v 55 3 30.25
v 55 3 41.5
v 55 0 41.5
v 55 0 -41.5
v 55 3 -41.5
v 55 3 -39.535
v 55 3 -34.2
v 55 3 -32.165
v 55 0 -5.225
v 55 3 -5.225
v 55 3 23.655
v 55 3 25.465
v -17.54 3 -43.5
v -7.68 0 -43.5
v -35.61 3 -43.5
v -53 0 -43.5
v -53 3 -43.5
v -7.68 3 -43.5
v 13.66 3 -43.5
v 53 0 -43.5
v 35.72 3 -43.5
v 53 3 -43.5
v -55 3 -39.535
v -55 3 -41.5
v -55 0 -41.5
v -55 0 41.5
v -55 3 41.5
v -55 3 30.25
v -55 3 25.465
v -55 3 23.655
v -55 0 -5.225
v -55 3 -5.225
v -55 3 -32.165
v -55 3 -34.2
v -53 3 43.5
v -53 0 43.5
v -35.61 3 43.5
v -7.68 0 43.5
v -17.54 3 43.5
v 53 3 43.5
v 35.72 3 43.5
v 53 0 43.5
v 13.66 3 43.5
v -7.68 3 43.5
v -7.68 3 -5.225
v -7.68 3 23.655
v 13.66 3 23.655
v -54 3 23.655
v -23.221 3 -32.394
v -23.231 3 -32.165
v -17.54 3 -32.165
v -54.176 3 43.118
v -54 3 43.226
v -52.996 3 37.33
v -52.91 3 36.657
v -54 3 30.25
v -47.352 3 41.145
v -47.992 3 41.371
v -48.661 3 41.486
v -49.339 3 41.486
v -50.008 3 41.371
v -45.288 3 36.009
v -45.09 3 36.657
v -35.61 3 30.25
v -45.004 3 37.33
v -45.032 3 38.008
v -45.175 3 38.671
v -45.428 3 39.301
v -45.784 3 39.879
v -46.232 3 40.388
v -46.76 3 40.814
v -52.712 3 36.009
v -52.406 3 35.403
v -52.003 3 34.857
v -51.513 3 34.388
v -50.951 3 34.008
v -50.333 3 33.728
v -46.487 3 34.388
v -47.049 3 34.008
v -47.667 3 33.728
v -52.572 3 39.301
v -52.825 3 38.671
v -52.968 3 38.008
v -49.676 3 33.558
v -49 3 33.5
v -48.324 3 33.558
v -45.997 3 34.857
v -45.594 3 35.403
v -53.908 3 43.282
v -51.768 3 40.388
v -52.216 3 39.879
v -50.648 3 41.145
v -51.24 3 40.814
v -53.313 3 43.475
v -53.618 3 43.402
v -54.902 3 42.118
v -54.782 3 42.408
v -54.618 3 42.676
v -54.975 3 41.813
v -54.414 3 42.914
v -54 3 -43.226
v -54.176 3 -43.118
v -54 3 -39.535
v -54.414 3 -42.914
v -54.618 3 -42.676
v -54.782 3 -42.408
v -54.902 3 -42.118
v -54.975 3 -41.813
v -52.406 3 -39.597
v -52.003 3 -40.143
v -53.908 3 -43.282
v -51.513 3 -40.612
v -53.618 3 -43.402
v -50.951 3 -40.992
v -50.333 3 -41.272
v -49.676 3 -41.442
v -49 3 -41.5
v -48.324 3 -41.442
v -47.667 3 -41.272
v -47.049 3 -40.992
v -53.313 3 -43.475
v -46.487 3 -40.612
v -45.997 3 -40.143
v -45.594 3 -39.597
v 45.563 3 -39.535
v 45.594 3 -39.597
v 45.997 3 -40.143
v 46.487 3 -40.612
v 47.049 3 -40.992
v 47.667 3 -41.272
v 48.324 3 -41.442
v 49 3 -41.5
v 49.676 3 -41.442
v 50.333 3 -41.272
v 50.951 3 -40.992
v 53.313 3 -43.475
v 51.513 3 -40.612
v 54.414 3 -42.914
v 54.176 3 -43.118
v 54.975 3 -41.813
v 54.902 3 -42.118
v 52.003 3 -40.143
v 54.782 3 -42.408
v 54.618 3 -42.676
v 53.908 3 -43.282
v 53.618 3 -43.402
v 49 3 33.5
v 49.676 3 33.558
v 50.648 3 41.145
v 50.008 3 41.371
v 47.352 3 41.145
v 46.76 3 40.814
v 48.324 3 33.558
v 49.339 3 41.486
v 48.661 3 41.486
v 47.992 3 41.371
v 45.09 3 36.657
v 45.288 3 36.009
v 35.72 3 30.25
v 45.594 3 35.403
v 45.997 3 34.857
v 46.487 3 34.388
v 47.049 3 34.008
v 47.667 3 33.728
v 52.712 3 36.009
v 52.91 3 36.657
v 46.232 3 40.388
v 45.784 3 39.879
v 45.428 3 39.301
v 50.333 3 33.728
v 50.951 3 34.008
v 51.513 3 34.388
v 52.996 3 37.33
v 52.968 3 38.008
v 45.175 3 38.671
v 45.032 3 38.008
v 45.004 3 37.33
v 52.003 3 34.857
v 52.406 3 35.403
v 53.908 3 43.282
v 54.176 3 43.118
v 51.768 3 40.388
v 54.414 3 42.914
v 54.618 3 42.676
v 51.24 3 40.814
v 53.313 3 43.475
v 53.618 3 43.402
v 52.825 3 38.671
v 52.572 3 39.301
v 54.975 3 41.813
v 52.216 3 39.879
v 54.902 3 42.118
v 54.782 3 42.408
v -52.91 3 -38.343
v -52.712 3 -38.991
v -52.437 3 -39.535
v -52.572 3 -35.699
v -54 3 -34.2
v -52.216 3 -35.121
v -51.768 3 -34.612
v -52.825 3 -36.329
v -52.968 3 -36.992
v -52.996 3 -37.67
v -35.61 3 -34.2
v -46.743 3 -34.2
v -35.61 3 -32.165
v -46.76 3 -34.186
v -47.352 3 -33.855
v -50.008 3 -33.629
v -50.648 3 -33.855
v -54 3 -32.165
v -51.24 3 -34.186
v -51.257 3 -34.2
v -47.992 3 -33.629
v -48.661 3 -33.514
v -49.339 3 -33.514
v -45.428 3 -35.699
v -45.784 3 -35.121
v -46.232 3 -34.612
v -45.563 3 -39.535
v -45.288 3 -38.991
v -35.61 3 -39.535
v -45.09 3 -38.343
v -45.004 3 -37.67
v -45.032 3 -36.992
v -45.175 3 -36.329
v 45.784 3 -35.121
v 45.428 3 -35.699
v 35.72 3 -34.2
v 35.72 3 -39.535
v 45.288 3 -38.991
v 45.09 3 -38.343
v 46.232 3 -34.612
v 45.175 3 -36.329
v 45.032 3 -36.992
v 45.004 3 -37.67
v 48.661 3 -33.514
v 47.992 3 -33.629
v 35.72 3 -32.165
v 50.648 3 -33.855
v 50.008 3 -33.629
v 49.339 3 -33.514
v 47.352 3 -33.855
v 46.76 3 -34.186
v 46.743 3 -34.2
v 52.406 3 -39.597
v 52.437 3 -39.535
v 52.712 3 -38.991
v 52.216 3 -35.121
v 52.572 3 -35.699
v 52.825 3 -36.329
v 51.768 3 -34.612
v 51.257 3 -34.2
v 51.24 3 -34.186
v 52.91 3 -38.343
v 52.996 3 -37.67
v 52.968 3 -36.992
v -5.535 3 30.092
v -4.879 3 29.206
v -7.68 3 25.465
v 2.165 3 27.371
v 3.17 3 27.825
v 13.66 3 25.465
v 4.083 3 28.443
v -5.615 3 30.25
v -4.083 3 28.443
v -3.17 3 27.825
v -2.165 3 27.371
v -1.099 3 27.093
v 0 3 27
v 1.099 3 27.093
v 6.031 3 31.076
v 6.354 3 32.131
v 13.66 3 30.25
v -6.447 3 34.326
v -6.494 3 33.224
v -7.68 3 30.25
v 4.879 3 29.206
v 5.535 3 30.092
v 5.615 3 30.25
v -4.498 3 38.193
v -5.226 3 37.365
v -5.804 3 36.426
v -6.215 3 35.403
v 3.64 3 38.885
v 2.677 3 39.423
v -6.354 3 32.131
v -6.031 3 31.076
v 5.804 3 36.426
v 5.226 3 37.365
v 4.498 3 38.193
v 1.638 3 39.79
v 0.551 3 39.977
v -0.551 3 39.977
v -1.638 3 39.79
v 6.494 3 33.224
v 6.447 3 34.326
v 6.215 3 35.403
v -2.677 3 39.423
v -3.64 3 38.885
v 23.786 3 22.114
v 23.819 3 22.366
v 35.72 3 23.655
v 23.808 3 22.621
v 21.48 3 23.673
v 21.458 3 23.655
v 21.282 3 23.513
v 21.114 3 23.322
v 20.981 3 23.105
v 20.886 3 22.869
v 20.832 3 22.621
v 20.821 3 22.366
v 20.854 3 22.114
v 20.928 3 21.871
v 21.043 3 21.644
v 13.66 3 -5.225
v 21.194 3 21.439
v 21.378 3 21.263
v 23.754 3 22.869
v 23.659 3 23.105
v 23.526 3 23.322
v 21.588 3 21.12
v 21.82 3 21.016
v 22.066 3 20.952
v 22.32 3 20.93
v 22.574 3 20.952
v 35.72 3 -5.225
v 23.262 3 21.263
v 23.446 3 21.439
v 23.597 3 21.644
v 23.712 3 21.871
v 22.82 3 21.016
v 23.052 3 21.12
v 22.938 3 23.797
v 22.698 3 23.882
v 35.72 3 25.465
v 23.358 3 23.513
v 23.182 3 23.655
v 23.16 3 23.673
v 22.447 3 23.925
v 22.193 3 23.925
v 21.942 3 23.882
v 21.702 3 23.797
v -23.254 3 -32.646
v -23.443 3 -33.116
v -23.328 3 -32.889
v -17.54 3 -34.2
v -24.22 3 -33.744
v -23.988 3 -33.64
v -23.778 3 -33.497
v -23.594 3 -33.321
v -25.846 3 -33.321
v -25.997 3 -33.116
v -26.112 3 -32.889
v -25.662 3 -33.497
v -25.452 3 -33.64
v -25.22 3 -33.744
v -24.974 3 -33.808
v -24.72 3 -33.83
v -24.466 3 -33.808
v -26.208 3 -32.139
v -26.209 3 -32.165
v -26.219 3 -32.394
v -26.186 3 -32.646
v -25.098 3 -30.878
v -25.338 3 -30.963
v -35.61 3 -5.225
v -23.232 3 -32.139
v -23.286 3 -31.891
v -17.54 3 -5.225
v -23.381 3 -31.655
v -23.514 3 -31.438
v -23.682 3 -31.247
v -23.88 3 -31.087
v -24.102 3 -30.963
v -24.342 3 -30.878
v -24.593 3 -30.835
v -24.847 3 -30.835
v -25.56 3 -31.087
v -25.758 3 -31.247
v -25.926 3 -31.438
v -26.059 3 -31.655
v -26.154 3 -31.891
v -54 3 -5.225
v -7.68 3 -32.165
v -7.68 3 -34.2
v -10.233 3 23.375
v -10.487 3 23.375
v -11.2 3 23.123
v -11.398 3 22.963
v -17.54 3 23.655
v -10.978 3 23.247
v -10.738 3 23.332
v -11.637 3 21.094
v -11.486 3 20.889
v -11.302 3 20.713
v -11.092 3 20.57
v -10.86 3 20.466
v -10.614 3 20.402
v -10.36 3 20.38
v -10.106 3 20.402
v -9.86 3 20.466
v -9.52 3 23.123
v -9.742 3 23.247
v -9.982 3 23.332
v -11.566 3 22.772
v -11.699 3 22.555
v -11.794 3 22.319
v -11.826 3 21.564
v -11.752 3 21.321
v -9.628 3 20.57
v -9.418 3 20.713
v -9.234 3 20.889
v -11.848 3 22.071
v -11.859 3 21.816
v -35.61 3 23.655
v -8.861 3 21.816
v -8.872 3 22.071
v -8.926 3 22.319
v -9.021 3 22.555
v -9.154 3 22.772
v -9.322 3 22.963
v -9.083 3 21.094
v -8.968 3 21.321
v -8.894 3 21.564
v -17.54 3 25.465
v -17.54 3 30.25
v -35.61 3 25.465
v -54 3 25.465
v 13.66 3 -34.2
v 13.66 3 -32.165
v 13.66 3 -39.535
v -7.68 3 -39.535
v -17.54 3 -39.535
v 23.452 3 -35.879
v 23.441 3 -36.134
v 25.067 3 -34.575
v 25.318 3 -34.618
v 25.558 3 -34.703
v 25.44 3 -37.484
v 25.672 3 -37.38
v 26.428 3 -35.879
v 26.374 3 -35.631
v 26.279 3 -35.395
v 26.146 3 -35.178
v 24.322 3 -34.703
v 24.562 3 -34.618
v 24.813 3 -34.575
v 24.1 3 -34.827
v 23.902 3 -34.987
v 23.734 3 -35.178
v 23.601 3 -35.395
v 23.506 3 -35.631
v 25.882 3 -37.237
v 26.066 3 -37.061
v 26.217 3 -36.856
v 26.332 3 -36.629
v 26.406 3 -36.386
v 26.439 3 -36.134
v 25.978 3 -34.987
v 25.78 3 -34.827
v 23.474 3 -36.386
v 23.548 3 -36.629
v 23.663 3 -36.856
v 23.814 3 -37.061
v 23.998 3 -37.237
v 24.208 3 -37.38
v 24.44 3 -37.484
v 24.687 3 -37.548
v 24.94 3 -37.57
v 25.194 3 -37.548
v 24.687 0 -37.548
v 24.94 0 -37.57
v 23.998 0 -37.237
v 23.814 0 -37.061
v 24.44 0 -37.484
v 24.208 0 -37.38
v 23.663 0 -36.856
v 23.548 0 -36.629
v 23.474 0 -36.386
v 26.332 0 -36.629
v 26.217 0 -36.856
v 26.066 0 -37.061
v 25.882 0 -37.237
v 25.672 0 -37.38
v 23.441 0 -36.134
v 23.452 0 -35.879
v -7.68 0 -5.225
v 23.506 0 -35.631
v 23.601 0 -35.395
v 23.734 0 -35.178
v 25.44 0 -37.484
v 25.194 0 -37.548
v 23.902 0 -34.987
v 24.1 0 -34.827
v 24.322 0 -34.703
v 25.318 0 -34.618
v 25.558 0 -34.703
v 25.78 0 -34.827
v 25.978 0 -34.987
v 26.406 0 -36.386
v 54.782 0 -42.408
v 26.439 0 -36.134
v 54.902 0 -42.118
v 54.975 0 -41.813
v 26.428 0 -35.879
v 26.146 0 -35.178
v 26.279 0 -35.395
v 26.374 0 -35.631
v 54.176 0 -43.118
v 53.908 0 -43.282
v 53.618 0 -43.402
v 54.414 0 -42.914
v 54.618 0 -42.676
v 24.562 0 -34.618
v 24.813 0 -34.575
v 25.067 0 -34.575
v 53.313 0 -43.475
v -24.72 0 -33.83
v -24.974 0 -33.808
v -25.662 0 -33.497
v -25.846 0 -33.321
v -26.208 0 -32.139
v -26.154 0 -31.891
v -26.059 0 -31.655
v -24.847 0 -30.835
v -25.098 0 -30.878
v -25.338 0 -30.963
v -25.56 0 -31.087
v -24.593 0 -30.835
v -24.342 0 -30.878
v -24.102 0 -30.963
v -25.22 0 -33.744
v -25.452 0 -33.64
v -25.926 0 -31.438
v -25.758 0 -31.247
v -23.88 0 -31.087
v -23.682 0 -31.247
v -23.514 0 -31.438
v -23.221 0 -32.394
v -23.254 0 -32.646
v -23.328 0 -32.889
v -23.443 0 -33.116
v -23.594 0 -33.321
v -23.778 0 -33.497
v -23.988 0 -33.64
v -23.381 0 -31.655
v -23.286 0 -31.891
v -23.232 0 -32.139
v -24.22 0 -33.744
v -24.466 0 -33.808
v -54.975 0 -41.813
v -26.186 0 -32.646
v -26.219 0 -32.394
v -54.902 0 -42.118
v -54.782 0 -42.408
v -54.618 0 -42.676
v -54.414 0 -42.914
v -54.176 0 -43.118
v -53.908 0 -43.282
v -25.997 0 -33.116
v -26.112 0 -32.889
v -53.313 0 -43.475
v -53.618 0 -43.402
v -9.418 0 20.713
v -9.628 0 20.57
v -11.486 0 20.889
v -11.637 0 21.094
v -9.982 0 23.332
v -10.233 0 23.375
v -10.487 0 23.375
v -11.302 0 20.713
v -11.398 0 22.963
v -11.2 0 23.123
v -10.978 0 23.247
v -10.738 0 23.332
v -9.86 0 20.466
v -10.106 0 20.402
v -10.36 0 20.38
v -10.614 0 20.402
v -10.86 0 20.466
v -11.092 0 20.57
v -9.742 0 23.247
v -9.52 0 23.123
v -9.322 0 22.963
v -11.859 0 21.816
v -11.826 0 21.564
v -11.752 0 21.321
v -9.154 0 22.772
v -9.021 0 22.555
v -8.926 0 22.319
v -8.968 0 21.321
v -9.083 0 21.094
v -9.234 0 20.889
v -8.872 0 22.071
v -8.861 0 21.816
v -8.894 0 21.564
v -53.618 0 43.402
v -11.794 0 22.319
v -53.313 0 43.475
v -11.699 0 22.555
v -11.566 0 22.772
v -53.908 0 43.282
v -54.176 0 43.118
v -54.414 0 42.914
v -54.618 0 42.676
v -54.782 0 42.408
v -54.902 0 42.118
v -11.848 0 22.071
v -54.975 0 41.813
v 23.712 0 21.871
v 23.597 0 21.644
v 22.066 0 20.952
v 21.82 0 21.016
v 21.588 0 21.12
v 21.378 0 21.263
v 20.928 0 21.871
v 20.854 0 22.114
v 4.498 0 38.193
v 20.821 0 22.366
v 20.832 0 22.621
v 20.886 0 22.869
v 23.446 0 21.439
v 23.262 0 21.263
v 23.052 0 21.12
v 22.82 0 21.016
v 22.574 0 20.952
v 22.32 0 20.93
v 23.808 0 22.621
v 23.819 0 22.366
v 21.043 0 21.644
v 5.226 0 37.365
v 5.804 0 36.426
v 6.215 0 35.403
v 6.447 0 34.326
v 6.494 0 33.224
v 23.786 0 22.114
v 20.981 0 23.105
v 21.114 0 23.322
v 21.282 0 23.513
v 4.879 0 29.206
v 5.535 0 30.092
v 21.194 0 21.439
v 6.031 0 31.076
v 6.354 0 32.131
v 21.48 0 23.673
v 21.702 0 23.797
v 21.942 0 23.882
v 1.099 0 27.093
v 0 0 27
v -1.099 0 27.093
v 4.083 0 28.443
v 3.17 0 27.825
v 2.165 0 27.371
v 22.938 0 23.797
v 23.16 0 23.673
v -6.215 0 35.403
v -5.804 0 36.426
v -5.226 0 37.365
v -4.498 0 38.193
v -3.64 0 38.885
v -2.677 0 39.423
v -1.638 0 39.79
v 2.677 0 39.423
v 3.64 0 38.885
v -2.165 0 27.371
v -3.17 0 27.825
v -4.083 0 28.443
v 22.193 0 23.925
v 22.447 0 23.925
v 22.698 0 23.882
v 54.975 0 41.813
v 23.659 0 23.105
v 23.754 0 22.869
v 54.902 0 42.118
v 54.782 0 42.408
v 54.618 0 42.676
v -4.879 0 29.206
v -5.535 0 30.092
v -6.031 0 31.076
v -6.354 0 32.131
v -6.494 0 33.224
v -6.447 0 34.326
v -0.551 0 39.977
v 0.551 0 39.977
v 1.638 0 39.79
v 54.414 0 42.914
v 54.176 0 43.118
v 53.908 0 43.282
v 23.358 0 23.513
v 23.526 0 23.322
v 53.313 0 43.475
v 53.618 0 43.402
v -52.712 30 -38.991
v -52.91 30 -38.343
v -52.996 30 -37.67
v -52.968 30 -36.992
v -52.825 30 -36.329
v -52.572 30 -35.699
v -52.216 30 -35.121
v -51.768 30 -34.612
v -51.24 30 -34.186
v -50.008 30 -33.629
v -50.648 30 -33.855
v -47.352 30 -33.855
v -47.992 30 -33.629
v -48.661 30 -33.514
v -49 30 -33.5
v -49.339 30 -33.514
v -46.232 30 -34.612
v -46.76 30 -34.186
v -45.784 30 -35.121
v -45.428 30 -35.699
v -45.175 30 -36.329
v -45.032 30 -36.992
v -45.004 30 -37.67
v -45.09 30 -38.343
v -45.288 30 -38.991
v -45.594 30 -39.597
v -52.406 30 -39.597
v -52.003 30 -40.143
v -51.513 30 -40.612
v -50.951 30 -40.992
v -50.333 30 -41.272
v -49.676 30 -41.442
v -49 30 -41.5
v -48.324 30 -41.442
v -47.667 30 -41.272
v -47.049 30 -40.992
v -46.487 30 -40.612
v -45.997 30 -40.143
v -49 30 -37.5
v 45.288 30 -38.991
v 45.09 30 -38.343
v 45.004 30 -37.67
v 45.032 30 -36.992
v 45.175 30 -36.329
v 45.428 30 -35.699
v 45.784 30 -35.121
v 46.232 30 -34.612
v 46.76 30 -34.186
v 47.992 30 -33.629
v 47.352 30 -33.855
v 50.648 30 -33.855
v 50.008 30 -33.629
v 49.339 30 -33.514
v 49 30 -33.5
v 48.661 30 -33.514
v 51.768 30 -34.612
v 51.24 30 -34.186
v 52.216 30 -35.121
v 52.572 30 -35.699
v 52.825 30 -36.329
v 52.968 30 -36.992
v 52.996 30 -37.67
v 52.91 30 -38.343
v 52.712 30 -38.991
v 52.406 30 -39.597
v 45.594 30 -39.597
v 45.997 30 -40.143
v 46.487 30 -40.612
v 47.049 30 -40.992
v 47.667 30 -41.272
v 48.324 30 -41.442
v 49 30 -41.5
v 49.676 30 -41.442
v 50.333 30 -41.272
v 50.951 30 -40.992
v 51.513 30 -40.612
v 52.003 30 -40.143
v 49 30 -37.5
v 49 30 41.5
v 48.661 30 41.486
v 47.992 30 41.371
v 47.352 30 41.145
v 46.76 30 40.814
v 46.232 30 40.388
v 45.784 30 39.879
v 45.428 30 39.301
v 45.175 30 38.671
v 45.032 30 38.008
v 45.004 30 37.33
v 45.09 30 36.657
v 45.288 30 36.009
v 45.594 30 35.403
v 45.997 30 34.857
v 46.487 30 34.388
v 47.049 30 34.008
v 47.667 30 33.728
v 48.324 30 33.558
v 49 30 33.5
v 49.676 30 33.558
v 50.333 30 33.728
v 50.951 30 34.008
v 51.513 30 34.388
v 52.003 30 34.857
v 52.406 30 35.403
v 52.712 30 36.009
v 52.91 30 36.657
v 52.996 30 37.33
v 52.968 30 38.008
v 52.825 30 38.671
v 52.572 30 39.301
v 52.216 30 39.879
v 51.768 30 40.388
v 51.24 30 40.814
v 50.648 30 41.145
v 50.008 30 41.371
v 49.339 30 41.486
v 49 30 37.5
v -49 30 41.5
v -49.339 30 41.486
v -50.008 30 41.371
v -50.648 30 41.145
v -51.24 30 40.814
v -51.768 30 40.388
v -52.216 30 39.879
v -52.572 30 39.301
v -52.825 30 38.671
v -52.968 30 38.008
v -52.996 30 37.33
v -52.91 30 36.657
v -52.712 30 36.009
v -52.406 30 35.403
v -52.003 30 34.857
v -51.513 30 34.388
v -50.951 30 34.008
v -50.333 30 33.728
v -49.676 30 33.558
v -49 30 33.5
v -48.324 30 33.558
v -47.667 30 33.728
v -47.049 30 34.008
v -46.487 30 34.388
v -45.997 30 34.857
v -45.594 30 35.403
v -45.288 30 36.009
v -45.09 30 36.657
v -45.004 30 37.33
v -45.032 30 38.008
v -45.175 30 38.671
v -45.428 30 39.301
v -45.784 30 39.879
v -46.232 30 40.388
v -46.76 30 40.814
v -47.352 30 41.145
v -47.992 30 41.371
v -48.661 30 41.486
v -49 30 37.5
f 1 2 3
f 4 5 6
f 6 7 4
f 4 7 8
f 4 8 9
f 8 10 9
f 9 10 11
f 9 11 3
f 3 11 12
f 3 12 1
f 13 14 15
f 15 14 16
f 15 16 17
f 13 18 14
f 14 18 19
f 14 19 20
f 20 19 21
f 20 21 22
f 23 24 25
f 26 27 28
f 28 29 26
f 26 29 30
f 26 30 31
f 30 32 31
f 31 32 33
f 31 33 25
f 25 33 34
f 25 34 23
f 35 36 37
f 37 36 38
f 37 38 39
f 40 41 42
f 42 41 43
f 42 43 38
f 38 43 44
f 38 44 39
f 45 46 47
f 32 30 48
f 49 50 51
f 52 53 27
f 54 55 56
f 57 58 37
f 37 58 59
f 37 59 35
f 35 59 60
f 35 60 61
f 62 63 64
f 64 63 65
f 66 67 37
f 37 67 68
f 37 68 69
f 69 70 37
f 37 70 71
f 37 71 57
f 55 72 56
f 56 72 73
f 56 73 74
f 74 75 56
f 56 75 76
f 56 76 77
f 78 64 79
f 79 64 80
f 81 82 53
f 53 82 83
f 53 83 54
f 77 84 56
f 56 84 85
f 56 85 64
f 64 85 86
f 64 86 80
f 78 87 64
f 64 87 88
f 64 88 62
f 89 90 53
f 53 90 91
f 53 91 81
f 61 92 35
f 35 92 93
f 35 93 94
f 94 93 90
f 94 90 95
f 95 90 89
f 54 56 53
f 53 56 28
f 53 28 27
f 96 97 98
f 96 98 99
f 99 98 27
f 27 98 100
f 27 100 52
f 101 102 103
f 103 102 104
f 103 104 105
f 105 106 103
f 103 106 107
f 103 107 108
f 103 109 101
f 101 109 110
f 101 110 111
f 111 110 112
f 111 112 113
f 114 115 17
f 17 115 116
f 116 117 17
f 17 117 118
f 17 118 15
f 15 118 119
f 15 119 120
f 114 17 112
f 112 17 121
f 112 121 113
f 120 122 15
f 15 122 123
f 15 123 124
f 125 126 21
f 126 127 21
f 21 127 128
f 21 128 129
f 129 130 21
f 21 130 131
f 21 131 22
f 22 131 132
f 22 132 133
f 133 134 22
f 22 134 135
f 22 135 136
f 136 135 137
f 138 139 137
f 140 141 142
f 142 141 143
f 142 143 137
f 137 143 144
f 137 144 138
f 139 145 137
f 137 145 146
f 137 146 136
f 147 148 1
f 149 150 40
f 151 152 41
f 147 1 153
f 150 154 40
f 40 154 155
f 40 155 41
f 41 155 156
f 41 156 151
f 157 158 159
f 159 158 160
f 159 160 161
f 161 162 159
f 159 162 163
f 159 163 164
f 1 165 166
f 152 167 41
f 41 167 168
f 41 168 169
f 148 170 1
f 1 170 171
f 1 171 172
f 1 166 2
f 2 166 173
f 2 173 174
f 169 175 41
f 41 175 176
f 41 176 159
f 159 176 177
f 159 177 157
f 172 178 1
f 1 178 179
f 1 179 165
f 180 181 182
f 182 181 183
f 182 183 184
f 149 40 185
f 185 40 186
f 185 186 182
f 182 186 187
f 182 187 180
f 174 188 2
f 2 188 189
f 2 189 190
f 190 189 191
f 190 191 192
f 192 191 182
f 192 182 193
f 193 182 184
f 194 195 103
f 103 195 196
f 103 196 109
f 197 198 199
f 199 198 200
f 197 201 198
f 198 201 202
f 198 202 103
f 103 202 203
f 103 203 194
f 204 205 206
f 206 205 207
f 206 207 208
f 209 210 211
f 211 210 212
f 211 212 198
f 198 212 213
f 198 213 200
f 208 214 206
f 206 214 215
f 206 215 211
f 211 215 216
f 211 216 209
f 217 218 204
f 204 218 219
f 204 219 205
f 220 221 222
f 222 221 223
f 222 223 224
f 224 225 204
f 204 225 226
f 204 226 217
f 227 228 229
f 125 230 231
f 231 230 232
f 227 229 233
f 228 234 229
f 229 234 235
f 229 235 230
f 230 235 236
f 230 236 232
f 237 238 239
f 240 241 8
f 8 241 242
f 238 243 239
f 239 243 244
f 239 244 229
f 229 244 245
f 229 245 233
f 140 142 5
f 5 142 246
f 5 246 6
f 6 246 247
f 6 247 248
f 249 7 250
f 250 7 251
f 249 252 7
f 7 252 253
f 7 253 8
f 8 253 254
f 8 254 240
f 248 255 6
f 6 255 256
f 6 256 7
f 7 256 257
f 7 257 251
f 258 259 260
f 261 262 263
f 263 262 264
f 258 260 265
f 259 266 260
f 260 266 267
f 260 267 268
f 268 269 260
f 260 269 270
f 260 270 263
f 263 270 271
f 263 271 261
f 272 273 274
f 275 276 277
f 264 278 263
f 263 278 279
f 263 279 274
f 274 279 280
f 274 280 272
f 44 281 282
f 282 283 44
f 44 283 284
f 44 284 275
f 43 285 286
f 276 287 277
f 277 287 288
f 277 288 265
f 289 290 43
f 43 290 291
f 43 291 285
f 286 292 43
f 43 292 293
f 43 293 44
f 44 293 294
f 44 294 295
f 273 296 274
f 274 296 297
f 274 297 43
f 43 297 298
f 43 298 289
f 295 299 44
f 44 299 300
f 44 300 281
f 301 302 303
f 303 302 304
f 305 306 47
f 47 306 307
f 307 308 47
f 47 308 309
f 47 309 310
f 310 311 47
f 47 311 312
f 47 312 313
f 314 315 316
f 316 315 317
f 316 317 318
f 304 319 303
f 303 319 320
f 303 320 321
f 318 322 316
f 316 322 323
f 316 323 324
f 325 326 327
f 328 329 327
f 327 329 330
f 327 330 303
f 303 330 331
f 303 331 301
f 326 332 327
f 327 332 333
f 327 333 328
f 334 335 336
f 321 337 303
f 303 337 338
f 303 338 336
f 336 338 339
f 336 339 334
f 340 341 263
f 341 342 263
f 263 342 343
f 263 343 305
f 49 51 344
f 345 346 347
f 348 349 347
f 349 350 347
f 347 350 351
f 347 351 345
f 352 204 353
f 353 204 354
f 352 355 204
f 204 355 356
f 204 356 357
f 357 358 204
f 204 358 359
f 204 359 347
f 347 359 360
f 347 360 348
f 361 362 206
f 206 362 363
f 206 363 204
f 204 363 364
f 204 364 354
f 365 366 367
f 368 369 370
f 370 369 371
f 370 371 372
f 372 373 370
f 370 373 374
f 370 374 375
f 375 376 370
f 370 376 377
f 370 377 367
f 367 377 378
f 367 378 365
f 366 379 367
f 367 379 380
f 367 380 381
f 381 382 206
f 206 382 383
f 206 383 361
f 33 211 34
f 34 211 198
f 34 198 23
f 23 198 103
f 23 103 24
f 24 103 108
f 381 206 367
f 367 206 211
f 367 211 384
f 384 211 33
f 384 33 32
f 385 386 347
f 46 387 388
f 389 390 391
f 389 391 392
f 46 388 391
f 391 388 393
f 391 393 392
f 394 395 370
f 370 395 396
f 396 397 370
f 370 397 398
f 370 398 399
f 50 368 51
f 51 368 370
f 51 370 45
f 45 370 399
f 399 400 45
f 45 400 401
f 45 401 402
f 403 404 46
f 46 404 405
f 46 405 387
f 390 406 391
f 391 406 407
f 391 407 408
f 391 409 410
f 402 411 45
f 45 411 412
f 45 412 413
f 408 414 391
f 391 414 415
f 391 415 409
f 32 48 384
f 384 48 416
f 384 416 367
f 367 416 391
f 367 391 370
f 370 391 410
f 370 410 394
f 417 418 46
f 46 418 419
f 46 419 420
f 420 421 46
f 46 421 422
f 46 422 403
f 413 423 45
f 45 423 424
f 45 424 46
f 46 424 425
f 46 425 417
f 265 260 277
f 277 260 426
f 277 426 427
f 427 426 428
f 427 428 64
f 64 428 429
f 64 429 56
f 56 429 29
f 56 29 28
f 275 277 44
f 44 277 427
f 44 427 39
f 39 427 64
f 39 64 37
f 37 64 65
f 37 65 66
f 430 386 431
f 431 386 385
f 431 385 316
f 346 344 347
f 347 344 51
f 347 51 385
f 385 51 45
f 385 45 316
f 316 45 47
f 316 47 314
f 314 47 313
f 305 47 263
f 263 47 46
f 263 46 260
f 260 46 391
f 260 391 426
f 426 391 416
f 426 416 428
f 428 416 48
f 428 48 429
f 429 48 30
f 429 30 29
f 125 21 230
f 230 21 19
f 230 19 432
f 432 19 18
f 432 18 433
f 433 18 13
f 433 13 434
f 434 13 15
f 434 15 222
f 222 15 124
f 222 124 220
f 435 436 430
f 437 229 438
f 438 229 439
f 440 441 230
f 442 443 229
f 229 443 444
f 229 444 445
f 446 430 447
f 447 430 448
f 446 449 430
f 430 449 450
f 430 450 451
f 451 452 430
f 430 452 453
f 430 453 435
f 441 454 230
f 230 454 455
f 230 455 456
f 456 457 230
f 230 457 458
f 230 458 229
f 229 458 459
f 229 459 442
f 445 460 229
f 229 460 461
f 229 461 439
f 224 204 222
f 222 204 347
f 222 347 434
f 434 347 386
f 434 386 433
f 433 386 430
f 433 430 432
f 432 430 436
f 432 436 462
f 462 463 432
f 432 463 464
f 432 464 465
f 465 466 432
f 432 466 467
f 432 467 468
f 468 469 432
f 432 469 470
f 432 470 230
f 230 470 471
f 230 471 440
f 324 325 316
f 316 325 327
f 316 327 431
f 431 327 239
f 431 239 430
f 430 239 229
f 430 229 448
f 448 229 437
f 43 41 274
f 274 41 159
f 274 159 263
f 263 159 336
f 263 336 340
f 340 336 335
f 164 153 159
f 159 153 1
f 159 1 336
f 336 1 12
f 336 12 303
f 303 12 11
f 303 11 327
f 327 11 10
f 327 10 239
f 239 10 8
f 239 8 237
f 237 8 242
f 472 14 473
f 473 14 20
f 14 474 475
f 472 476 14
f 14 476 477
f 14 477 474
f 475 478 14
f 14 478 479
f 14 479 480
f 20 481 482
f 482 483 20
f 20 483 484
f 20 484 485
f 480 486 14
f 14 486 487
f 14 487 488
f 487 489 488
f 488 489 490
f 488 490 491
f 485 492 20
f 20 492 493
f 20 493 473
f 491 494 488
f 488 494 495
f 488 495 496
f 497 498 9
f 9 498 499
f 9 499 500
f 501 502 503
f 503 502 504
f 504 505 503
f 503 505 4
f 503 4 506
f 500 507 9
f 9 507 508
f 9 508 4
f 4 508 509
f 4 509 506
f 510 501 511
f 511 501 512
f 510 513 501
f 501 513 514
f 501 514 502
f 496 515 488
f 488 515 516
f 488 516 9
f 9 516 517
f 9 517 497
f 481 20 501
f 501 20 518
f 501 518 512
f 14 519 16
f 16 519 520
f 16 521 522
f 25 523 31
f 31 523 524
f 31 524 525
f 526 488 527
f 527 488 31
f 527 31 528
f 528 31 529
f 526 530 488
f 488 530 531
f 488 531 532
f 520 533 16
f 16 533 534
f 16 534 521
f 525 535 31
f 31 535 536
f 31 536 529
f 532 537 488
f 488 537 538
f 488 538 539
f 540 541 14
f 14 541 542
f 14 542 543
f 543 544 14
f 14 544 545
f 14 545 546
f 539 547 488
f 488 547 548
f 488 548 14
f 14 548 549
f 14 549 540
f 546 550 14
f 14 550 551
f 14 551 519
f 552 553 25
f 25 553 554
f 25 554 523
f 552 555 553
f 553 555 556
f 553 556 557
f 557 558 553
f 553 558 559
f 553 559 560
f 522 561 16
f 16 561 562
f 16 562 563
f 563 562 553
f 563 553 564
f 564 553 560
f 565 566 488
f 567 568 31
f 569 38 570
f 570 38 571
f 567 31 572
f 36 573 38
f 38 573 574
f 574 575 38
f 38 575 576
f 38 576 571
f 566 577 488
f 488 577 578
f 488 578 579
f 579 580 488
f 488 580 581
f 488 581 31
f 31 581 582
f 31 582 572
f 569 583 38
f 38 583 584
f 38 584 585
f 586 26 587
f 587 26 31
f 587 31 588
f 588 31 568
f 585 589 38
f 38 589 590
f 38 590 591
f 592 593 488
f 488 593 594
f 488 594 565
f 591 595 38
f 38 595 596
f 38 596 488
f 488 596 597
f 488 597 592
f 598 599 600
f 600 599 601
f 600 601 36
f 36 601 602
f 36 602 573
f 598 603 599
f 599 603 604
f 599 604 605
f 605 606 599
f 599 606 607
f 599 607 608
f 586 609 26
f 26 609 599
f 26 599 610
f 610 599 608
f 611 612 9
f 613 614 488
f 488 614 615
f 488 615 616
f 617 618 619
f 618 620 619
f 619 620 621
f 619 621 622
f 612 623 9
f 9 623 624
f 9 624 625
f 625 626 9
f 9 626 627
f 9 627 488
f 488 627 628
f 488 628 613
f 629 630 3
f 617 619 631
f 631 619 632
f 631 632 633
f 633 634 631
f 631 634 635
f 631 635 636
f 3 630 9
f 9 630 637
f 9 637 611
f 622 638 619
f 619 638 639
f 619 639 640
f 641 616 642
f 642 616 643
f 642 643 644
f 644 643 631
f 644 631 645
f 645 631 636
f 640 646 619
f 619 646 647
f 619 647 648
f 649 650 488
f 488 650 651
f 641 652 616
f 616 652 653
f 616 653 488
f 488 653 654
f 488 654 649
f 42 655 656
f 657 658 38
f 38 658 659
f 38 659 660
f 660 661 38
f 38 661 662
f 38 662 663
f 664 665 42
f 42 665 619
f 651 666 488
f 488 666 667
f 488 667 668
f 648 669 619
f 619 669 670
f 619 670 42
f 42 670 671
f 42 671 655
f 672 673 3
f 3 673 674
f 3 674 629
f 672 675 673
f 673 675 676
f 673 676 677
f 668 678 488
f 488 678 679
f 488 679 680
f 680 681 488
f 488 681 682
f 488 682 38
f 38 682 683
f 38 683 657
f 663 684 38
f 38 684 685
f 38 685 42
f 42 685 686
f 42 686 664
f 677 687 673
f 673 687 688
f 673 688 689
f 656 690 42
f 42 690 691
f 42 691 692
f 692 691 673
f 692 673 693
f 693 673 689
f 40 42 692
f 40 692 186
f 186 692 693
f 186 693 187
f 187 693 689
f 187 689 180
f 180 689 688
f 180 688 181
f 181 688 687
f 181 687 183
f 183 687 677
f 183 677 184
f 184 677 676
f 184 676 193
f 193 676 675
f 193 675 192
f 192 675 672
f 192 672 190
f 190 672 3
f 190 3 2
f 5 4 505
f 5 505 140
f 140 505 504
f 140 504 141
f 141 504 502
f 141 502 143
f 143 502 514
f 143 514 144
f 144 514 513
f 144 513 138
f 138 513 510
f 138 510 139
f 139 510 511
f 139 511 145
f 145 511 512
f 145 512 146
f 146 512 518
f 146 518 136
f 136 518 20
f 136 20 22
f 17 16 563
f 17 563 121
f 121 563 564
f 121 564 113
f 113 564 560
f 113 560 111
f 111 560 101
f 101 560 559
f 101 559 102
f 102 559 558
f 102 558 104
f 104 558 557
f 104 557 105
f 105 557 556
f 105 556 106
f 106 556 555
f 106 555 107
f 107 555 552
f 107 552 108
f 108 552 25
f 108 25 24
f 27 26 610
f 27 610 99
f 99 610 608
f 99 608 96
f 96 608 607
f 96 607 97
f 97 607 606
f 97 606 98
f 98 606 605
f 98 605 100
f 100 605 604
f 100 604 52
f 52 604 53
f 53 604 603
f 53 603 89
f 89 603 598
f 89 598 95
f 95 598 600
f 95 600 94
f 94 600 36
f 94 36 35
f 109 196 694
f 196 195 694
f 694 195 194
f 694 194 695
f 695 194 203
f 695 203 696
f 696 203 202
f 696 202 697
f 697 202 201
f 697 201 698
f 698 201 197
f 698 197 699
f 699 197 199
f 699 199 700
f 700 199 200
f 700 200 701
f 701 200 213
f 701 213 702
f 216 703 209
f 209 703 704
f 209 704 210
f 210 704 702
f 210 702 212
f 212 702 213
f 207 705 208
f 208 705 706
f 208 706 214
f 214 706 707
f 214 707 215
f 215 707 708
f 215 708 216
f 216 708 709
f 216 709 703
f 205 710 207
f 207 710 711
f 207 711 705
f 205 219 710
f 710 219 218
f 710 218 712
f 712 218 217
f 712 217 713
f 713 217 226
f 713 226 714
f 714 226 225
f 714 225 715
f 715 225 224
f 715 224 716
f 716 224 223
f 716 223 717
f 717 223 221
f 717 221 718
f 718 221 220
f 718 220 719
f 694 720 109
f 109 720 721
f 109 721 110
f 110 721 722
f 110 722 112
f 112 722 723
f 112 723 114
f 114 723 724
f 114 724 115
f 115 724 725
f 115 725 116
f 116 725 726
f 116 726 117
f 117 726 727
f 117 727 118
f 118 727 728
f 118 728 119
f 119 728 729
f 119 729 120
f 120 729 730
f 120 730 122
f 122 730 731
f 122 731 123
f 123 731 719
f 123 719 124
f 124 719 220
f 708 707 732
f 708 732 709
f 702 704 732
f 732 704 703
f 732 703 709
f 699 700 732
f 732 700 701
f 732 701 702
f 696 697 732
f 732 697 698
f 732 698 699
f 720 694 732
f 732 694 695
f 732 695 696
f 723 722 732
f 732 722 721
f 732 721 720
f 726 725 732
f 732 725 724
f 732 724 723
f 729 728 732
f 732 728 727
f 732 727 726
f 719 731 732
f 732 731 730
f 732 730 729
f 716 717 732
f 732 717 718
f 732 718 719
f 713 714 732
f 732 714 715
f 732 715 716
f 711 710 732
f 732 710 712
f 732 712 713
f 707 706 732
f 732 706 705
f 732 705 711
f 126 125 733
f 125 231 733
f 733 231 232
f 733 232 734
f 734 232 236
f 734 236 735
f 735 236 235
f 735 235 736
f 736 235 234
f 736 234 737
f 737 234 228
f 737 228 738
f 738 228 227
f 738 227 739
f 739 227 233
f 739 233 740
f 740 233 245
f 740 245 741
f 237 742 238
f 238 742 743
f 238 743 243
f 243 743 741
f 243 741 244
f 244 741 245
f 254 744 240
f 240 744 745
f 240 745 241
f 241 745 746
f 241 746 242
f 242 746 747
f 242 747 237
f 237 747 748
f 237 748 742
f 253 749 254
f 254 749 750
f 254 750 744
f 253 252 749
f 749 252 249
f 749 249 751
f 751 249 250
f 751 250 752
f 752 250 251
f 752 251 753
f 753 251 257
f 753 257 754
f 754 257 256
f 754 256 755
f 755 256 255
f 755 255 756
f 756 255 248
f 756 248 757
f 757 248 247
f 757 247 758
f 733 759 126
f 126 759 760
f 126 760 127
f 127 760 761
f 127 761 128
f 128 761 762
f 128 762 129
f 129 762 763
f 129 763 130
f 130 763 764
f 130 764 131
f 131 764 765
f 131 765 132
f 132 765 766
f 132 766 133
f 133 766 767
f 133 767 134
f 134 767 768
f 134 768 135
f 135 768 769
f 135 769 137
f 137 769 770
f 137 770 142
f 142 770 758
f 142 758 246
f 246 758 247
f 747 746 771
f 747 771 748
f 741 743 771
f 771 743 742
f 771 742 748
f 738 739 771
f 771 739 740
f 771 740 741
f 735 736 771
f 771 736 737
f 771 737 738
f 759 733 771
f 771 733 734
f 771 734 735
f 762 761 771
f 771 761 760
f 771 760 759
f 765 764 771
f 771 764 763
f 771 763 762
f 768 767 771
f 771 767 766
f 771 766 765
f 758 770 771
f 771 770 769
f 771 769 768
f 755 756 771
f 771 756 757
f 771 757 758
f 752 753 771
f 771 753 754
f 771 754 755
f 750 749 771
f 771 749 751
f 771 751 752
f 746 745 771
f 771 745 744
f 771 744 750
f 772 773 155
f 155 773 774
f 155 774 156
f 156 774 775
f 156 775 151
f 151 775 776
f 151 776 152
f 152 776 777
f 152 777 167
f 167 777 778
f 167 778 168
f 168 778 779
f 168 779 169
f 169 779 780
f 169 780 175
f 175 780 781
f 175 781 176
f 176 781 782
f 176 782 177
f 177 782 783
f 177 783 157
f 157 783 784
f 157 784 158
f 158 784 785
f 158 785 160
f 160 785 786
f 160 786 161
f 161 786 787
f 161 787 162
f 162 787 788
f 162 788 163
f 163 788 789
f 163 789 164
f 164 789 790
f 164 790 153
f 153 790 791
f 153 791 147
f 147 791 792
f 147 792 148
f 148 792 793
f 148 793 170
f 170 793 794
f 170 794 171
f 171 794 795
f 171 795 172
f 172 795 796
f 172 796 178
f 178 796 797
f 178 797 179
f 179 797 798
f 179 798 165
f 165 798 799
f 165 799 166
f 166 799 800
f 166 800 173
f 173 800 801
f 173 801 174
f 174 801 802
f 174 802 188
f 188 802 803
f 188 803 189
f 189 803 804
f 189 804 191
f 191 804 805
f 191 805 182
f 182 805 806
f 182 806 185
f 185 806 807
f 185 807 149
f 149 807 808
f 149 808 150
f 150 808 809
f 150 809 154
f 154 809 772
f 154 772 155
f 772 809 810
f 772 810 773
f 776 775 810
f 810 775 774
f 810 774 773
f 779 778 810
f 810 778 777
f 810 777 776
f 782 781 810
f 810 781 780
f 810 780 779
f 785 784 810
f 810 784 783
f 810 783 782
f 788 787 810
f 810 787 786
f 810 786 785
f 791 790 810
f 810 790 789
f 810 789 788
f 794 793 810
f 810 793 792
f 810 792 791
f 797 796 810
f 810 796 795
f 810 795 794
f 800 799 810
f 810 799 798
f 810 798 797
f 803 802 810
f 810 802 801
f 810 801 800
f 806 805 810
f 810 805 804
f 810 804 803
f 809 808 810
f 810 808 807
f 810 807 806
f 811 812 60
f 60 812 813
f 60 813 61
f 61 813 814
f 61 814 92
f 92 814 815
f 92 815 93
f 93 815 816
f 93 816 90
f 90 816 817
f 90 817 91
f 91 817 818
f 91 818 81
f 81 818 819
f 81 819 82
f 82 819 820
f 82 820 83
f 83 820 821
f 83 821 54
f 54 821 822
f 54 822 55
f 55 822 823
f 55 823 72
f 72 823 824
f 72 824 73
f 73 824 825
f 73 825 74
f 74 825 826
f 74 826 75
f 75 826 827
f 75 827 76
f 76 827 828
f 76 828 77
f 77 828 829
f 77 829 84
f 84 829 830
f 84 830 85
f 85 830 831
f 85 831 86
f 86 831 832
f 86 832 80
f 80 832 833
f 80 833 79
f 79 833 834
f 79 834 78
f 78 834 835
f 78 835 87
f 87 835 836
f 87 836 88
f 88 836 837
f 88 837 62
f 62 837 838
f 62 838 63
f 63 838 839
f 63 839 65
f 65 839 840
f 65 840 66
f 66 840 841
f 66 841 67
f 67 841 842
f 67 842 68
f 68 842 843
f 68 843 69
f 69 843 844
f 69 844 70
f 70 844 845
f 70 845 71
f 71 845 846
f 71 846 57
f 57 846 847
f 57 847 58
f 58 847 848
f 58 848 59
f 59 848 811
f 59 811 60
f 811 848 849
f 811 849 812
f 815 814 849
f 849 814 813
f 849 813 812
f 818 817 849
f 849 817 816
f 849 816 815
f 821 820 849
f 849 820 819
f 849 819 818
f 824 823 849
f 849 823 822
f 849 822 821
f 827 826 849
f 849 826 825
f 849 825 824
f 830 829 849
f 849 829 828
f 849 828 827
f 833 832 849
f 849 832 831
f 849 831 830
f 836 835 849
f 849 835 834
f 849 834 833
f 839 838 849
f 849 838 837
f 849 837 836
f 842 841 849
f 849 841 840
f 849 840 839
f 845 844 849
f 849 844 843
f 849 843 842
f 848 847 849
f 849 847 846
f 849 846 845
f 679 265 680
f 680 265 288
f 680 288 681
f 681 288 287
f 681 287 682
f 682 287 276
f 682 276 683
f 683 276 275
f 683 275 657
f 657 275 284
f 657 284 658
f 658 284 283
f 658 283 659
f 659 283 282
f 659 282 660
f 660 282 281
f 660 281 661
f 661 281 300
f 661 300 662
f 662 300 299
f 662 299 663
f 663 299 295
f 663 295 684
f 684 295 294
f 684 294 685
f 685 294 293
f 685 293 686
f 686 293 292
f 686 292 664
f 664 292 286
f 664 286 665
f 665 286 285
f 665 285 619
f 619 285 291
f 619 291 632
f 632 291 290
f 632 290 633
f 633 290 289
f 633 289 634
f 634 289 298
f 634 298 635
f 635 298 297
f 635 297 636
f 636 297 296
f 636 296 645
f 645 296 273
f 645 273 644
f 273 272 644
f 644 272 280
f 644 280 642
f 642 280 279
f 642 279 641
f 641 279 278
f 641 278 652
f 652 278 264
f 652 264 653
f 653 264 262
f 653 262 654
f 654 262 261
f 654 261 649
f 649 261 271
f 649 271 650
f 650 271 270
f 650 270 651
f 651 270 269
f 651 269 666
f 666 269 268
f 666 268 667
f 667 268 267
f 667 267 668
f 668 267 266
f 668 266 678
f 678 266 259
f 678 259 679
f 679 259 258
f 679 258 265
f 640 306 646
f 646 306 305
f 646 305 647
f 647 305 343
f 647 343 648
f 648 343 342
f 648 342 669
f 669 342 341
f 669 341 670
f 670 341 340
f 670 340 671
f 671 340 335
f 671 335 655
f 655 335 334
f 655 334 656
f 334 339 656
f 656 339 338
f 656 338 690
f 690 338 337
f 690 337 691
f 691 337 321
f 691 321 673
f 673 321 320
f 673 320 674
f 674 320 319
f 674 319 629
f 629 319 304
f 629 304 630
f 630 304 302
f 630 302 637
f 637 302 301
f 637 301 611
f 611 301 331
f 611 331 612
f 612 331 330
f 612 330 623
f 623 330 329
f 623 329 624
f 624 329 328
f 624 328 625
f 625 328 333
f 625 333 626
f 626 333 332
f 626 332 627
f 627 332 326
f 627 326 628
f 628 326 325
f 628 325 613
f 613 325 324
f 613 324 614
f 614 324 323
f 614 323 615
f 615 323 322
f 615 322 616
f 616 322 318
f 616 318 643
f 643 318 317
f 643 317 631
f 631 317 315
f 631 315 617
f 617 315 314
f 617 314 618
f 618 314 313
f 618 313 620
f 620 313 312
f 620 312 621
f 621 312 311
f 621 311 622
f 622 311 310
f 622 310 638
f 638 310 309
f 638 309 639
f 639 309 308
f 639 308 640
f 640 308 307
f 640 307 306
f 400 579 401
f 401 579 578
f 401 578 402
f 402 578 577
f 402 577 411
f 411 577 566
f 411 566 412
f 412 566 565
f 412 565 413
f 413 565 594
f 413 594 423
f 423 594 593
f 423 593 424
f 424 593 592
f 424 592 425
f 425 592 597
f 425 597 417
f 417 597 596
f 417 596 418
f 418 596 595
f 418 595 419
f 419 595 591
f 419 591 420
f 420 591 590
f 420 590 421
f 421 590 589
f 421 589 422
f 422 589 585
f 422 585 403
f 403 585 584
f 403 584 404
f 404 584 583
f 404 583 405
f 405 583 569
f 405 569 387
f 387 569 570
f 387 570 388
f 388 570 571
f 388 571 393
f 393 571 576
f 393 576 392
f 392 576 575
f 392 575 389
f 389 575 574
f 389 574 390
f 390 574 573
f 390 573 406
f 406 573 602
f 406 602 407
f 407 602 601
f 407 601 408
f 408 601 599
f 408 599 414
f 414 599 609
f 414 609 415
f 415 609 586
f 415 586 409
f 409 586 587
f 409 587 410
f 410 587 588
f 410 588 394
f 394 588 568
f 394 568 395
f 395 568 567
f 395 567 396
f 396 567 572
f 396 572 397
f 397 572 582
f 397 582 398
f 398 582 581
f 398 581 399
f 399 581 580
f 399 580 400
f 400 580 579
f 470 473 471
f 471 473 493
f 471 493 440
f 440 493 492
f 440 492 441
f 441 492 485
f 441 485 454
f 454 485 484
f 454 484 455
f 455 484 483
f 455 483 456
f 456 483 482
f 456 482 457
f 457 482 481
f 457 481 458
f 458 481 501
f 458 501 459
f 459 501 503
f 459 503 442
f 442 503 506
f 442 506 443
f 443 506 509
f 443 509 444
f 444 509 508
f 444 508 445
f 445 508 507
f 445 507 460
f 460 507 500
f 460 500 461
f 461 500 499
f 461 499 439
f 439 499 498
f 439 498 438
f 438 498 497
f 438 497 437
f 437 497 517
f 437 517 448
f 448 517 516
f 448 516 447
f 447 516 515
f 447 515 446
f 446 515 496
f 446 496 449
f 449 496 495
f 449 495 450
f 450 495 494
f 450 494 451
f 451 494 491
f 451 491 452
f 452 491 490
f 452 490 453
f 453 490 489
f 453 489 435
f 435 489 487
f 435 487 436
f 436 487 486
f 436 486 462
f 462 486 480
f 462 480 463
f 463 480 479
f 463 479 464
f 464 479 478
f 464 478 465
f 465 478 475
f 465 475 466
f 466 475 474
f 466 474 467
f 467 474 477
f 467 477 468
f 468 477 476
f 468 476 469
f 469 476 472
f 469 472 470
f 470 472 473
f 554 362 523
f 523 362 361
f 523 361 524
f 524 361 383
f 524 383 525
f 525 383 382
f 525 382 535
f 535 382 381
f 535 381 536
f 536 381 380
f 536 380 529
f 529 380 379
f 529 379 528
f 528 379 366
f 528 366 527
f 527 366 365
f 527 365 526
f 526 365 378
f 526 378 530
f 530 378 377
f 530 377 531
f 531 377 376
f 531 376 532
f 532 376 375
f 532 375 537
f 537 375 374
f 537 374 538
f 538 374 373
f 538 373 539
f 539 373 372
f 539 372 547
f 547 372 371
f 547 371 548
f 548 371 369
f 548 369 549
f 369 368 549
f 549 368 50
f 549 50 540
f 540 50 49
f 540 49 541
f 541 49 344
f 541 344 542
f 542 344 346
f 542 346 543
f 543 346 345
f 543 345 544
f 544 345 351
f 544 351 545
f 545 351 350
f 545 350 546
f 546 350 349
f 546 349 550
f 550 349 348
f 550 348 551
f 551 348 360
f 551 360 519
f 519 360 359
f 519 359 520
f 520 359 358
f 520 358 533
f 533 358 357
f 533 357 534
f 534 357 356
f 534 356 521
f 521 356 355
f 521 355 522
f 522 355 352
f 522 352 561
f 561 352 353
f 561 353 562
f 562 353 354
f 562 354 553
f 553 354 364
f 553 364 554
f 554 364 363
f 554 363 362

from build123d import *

# Parameters (mm, degrees)
IZIM1_W                     = 110
IZIM1_H                     = 87
Y_KSEKLIK_EKSTR_ZYON1_DEPTH = 3
RADYUS1_R                   = 2
IZIM2_R                     = 4
Y_KSEKLIK_EKSTR_ZYON2_DEPTH = 27
IZIM4_R                     = 6.5
KES_EKSTR_ZYON1_DEPTH       = 13
IZIM5_R                     = 1.5
KES_EKSTR_ZYON2_DEPTH       = 10


with BuildPart() as part:
    # Çizim1 → Yükseklik-Ekstrüzyon1 (new body)
    with BuildSketch(Plane(origin=(0, 0, 0), x_dir=(1, 0, 0), z_dir=(0, 1, 0))):
        Rectangle(IZIM1_W, IZIM1_H)
    extrude(amount=Y_KSEKLIK_EKSTR_ZYON1_DEPTH)

    # Radyus1
    radyus1_edges = [part.edges().sort_by_distance(p)[0] for p in [
        (55, 1.5, 43.5),
        (-55, 1.5, 43.5),
        (-55, 1.5, -43.5),
        (55, 1.5, -43.5),
    ]]
    fillet(radyus1_edges, radius=RADYUS1_R)

    # Çizim2 → Yükseklik-Ekstrüzyon2 (add)
    with BuildSketch(Plane(origin=(0, 3, 0), x_dir=(1, 0, 0), z_dir=(0, 1, 0))):
        with Locations(Location((-49, 37.5, 0), (0, 0, 90))):
            Circle(IZIM2_R)
        with Locations(Location((49, 37.5, 0), (0, 0, 90))):
            Circle(IZIM2_R)
        with Locations(Location((49, -37.5, 0), (0, 0, 90))):
            Circle(IZIM2_R)
        with Locations(Location((-49, -37.5, 0), (0, 0, 90))):
            Circle(IZIM2_R)
    extrude(amount=Y_KSEKLIK_EKSTR_ZYON2_DEPTH)

    # Çizim4 → Kes-Ekstrüzyon1 (cut)
    with BuildSketch(Plane.XZ):
        with Locations(Location((0, 33.5, 0), (0, 0, 270))):
            Circle(IZIM4_R)
    extrude(amount=-KES_EKSTR_ZYON1_DEPTH, mode=Mode.SUBTRACT)

    # Çizim5 → Kes-Ekstrüzyon2 (cut)
    with BuildSketch(Plane(origin=(0, 0, 0), x_dir=(-1, 0, 0), z_dir=(0, -1, 0))):
        with Locations(Location((-22.32, -22.43, 0), (0, 0, 90))):
            Circle(IZIM5_R)
        with Locations(Location((10.36, -21.88, 0), (0, 0, 90))):
            Circle(IZIM5_R)
        with Locations(Location((-24.94, 36.07, 0), (0, 0, 90))):
            Circle(IZIM5_R)
        with Locations(Location((24.72, 32.33, 0), (0, 0, 90))):
            Circle(IZIM5_R)
    extrude(amount=-KES_EKSTR_ZYON2_DEPTH, mode=Mode.SUBTRACT)


solid = part.part
